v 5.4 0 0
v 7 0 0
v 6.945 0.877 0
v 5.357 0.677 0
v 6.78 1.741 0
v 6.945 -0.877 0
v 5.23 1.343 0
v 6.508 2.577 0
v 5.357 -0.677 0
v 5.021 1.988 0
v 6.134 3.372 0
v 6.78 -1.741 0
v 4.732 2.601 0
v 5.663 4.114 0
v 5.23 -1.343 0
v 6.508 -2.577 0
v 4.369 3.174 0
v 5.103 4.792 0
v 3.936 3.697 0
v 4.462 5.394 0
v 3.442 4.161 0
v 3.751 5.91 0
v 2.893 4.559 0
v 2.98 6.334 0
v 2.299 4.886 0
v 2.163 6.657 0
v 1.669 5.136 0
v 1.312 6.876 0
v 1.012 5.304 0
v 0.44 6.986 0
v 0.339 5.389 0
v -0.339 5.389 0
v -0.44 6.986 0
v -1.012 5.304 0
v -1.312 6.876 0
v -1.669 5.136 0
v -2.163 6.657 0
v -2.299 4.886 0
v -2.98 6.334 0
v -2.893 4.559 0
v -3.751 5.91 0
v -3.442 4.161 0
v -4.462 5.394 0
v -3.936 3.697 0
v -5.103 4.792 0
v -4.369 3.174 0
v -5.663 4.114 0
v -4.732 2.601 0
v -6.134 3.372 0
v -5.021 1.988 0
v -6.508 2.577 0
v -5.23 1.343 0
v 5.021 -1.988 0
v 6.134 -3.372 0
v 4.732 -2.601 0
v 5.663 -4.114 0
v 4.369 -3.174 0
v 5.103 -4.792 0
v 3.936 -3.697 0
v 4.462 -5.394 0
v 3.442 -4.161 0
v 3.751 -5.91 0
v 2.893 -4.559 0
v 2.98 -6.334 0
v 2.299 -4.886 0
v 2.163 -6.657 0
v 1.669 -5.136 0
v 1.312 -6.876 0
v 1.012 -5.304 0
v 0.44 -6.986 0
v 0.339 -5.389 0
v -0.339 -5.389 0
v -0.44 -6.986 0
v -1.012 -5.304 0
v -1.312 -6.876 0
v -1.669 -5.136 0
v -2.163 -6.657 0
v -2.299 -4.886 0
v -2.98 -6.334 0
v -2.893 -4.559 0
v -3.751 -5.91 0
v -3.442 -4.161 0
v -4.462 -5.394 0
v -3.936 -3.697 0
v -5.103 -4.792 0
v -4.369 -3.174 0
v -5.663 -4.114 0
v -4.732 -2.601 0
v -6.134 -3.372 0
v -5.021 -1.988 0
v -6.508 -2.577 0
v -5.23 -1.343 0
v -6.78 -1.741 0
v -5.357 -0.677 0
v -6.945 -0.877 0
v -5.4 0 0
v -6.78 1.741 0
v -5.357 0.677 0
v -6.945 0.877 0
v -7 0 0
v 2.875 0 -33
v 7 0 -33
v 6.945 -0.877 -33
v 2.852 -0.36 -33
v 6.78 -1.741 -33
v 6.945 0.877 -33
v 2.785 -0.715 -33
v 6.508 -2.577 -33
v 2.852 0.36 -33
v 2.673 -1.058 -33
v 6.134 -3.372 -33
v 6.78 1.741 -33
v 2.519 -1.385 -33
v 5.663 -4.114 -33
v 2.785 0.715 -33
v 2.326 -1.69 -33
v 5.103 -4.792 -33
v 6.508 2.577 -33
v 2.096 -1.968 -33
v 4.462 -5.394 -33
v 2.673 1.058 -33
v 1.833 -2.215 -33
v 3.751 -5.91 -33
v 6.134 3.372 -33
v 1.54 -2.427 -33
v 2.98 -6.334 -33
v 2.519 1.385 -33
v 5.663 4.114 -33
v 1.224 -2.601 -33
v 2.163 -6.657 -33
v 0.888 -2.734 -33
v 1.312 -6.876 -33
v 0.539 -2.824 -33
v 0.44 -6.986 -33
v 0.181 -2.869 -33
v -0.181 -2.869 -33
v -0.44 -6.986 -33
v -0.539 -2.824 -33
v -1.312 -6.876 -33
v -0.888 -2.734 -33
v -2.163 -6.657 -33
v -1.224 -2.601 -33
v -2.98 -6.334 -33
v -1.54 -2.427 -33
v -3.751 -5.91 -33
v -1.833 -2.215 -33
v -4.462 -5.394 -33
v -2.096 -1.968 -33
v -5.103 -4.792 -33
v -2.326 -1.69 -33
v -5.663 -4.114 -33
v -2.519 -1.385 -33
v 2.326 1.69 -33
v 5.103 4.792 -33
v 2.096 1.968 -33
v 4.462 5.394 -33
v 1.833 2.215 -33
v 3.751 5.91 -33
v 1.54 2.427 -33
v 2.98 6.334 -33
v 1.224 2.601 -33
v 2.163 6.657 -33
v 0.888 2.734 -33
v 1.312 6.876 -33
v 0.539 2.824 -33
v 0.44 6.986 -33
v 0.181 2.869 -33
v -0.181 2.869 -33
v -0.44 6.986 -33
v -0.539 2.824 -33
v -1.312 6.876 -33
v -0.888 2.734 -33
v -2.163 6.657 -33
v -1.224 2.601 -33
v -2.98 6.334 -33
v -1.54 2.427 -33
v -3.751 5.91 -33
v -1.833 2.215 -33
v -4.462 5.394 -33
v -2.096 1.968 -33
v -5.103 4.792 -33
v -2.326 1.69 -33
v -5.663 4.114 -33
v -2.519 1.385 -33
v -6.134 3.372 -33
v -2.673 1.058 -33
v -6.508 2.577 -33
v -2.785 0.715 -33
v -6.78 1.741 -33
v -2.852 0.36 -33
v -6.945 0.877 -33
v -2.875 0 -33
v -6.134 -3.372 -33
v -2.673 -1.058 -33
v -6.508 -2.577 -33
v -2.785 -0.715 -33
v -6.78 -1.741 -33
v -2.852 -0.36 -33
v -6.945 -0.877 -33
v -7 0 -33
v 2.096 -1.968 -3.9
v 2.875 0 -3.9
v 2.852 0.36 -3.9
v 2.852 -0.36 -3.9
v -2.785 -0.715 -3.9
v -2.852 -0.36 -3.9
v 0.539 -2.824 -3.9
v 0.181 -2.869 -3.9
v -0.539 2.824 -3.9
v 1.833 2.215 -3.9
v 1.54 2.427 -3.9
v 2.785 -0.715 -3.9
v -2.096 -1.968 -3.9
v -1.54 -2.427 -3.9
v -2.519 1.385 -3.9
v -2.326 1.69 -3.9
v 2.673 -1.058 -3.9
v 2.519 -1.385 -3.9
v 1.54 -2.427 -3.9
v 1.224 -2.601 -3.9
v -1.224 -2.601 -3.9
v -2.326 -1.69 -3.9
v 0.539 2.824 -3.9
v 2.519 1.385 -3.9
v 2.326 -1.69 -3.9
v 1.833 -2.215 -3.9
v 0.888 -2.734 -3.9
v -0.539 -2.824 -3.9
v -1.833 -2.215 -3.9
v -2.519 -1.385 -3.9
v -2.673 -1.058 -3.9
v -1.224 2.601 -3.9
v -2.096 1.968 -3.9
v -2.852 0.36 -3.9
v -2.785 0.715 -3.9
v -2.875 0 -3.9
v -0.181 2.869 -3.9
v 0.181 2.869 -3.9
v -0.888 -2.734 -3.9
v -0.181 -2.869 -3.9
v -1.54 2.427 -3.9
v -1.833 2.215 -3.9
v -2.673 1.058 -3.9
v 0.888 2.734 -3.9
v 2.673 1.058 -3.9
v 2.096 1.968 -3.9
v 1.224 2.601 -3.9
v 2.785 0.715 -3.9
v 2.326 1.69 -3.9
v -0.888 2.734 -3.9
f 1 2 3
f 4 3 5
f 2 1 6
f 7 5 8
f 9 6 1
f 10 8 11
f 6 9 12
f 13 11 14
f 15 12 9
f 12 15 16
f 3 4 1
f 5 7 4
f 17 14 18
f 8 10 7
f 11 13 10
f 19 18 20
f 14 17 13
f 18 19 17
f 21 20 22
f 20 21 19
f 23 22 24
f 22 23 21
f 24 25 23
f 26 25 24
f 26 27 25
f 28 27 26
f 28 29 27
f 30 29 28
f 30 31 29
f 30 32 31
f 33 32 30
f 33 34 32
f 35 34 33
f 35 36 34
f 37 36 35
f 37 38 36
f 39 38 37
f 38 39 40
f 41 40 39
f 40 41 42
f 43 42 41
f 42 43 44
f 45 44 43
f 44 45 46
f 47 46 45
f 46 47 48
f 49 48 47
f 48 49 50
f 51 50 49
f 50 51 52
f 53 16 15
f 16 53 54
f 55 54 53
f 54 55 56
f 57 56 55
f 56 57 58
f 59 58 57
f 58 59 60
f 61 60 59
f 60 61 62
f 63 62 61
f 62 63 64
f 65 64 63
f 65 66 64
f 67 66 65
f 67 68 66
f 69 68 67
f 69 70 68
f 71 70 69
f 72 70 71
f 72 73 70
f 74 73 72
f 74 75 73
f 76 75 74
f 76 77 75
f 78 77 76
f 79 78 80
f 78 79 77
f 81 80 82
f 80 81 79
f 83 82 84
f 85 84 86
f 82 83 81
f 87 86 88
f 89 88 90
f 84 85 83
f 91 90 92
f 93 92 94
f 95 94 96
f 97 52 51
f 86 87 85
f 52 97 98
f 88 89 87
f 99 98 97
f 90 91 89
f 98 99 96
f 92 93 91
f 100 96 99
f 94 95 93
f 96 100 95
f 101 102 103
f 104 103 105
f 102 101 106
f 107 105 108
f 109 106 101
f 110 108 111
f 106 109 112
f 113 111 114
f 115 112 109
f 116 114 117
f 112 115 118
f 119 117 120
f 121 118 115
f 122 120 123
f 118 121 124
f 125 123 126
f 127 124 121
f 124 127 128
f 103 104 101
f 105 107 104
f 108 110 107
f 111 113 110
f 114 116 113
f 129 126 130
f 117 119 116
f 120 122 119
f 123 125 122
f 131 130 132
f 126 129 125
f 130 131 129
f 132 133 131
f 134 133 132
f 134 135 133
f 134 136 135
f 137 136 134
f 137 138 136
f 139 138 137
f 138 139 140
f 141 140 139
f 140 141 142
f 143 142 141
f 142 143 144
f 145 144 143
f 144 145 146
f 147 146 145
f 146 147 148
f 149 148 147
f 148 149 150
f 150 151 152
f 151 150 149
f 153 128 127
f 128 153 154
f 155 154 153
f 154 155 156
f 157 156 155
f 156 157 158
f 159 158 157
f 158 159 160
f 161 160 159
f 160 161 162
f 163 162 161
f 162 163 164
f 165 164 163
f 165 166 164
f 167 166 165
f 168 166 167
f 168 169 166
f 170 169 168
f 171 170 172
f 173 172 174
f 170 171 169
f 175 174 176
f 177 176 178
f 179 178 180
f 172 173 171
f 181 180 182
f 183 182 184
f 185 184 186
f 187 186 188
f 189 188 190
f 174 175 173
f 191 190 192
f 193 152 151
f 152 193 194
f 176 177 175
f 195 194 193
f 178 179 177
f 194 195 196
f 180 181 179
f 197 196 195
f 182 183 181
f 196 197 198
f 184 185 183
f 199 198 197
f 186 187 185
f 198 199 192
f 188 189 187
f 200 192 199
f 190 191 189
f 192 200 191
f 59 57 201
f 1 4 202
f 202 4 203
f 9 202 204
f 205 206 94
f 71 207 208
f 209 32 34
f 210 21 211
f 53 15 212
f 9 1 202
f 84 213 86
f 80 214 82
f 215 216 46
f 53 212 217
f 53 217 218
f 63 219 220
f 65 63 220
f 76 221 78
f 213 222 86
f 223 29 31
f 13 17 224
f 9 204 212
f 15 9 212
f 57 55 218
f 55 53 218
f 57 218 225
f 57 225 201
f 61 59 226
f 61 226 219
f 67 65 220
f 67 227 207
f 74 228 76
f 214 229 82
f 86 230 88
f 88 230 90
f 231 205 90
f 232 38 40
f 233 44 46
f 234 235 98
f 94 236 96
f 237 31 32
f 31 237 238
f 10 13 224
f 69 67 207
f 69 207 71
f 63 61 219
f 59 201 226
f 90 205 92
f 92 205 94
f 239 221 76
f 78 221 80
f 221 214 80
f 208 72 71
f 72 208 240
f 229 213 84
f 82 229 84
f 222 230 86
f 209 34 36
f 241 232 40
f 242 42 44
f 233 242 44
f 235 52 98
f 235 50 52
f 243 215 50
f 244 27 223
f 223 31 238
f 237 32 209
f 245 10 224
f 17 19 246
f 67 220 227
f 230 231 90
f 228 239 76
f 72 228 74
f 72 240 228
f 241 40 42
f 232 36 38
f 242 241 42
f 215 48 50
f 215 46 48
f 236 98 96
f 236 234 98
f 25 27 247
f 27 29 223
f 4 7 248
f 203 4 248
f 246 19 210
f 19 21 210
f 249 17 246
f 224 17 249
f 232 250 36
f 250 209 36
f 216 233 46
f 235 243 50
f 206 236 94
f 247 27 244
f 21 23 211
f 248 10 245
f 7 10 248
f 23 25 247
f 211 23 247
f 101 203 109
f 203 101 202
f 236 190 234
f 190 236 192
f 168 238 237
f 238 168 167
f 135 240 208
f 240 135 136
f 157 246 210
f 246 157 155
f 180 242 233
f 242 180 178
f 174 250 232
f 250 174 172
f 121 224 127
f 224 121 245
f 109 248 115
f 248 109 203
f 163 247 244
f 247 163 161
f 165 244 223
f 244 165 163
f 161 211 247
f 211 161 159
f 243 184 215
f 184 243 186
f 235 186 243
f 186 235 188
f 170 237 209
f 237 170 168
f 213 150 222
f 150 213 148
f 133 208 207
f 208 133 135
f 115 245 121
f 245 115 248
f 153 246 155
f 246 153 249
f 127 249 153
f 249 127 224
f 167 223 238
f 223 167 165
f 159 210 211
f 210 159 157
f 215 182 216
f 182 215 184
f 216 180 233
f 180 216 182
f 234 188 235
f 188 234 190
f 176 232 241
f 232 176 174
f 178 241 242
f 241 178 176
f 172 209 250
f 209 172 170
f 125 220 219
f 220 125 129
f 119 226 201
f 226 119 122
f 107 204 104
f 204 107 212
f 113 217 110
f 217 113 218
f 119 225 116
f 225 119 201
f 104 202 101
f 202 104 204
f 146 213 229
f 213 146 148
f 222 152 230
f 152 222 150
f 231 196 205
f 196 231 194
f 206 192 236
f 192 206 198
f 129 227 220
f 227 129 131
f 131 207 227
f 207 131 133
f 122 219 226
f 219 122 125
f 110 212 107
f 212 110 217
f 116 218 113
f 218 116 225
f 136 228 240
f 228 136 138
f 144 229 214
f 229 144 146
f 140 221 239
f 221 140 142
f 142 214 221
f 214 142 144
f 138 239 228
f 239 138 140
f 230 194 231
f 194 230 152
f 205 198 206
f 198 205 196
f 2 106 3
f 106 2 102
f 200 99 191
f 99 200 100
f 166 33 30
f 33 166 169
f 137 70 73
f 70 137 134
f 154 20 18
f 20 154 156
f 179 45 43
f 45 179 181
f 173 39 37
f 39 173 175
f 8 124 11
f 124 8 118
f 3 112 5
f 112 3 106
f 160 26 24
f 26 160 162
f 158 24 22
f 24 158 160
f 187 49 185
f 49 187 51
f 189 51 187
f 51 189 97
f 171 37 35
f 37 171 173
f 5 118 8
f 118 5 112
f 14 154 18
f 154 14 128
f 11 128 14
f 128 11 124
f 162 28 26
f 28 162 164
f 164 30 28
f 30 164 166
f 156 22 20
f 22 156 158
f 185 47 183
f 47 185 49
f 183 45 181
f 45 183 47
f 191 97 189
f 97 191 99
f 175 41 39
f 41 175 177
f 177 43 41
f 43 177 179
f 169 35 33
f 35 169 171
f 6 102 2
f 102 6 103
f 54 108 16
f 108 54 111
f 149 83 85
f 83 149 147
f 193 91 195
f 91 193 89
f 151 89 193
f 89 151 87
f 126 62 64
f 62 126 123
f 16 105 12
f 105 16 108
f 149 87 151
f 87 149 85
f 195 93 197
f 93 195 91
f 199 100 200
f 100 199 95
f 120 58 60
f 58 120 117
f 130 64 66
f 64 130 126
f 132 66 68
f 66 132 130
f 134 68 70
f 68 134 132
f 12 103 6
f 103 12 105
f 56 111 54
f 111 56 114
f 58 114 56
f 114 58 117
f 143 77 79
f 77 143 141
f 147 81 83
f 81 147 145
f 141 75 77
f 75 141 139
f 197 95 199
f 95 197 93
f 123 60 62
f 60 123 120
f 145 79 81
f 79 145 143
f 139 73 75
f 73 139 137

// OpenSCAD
$fn = 50;


difference() {
	union() {
		translate(v = [0, 0, -33.0000000000]) {
			cylinder(h = 33, r = 7.0000000000);
		}
		cylinder(h = 0, r = 10.0000000000);
	}
	union() {
		translate(v = [0, 0, 0]) {
			rotate(a = [0, 0, 0]) {
				difference() {
					union() {
						#translate(v = [0, 0, -33.0000000000]) {
							cylinder(h = 33, r = 2.6000000000);
						}
						#translate(v = [0, 0, -3.9000000000]) {
							cylinder(h = 3.9000000000, r1 = 2.8750000000, r2 = 5.4000000000);
						}
						#translate(v = [0, 0, -33.0000000000]) {
							cylinder(h = 33, r = 2.8750000000);
						}
						#translate(v = [0, 0, -33.0000000000]) {
							cylinder(h = 33, r = 2.6000000000);
						}
					}
					union();
				}
			}
		}
	}
}
